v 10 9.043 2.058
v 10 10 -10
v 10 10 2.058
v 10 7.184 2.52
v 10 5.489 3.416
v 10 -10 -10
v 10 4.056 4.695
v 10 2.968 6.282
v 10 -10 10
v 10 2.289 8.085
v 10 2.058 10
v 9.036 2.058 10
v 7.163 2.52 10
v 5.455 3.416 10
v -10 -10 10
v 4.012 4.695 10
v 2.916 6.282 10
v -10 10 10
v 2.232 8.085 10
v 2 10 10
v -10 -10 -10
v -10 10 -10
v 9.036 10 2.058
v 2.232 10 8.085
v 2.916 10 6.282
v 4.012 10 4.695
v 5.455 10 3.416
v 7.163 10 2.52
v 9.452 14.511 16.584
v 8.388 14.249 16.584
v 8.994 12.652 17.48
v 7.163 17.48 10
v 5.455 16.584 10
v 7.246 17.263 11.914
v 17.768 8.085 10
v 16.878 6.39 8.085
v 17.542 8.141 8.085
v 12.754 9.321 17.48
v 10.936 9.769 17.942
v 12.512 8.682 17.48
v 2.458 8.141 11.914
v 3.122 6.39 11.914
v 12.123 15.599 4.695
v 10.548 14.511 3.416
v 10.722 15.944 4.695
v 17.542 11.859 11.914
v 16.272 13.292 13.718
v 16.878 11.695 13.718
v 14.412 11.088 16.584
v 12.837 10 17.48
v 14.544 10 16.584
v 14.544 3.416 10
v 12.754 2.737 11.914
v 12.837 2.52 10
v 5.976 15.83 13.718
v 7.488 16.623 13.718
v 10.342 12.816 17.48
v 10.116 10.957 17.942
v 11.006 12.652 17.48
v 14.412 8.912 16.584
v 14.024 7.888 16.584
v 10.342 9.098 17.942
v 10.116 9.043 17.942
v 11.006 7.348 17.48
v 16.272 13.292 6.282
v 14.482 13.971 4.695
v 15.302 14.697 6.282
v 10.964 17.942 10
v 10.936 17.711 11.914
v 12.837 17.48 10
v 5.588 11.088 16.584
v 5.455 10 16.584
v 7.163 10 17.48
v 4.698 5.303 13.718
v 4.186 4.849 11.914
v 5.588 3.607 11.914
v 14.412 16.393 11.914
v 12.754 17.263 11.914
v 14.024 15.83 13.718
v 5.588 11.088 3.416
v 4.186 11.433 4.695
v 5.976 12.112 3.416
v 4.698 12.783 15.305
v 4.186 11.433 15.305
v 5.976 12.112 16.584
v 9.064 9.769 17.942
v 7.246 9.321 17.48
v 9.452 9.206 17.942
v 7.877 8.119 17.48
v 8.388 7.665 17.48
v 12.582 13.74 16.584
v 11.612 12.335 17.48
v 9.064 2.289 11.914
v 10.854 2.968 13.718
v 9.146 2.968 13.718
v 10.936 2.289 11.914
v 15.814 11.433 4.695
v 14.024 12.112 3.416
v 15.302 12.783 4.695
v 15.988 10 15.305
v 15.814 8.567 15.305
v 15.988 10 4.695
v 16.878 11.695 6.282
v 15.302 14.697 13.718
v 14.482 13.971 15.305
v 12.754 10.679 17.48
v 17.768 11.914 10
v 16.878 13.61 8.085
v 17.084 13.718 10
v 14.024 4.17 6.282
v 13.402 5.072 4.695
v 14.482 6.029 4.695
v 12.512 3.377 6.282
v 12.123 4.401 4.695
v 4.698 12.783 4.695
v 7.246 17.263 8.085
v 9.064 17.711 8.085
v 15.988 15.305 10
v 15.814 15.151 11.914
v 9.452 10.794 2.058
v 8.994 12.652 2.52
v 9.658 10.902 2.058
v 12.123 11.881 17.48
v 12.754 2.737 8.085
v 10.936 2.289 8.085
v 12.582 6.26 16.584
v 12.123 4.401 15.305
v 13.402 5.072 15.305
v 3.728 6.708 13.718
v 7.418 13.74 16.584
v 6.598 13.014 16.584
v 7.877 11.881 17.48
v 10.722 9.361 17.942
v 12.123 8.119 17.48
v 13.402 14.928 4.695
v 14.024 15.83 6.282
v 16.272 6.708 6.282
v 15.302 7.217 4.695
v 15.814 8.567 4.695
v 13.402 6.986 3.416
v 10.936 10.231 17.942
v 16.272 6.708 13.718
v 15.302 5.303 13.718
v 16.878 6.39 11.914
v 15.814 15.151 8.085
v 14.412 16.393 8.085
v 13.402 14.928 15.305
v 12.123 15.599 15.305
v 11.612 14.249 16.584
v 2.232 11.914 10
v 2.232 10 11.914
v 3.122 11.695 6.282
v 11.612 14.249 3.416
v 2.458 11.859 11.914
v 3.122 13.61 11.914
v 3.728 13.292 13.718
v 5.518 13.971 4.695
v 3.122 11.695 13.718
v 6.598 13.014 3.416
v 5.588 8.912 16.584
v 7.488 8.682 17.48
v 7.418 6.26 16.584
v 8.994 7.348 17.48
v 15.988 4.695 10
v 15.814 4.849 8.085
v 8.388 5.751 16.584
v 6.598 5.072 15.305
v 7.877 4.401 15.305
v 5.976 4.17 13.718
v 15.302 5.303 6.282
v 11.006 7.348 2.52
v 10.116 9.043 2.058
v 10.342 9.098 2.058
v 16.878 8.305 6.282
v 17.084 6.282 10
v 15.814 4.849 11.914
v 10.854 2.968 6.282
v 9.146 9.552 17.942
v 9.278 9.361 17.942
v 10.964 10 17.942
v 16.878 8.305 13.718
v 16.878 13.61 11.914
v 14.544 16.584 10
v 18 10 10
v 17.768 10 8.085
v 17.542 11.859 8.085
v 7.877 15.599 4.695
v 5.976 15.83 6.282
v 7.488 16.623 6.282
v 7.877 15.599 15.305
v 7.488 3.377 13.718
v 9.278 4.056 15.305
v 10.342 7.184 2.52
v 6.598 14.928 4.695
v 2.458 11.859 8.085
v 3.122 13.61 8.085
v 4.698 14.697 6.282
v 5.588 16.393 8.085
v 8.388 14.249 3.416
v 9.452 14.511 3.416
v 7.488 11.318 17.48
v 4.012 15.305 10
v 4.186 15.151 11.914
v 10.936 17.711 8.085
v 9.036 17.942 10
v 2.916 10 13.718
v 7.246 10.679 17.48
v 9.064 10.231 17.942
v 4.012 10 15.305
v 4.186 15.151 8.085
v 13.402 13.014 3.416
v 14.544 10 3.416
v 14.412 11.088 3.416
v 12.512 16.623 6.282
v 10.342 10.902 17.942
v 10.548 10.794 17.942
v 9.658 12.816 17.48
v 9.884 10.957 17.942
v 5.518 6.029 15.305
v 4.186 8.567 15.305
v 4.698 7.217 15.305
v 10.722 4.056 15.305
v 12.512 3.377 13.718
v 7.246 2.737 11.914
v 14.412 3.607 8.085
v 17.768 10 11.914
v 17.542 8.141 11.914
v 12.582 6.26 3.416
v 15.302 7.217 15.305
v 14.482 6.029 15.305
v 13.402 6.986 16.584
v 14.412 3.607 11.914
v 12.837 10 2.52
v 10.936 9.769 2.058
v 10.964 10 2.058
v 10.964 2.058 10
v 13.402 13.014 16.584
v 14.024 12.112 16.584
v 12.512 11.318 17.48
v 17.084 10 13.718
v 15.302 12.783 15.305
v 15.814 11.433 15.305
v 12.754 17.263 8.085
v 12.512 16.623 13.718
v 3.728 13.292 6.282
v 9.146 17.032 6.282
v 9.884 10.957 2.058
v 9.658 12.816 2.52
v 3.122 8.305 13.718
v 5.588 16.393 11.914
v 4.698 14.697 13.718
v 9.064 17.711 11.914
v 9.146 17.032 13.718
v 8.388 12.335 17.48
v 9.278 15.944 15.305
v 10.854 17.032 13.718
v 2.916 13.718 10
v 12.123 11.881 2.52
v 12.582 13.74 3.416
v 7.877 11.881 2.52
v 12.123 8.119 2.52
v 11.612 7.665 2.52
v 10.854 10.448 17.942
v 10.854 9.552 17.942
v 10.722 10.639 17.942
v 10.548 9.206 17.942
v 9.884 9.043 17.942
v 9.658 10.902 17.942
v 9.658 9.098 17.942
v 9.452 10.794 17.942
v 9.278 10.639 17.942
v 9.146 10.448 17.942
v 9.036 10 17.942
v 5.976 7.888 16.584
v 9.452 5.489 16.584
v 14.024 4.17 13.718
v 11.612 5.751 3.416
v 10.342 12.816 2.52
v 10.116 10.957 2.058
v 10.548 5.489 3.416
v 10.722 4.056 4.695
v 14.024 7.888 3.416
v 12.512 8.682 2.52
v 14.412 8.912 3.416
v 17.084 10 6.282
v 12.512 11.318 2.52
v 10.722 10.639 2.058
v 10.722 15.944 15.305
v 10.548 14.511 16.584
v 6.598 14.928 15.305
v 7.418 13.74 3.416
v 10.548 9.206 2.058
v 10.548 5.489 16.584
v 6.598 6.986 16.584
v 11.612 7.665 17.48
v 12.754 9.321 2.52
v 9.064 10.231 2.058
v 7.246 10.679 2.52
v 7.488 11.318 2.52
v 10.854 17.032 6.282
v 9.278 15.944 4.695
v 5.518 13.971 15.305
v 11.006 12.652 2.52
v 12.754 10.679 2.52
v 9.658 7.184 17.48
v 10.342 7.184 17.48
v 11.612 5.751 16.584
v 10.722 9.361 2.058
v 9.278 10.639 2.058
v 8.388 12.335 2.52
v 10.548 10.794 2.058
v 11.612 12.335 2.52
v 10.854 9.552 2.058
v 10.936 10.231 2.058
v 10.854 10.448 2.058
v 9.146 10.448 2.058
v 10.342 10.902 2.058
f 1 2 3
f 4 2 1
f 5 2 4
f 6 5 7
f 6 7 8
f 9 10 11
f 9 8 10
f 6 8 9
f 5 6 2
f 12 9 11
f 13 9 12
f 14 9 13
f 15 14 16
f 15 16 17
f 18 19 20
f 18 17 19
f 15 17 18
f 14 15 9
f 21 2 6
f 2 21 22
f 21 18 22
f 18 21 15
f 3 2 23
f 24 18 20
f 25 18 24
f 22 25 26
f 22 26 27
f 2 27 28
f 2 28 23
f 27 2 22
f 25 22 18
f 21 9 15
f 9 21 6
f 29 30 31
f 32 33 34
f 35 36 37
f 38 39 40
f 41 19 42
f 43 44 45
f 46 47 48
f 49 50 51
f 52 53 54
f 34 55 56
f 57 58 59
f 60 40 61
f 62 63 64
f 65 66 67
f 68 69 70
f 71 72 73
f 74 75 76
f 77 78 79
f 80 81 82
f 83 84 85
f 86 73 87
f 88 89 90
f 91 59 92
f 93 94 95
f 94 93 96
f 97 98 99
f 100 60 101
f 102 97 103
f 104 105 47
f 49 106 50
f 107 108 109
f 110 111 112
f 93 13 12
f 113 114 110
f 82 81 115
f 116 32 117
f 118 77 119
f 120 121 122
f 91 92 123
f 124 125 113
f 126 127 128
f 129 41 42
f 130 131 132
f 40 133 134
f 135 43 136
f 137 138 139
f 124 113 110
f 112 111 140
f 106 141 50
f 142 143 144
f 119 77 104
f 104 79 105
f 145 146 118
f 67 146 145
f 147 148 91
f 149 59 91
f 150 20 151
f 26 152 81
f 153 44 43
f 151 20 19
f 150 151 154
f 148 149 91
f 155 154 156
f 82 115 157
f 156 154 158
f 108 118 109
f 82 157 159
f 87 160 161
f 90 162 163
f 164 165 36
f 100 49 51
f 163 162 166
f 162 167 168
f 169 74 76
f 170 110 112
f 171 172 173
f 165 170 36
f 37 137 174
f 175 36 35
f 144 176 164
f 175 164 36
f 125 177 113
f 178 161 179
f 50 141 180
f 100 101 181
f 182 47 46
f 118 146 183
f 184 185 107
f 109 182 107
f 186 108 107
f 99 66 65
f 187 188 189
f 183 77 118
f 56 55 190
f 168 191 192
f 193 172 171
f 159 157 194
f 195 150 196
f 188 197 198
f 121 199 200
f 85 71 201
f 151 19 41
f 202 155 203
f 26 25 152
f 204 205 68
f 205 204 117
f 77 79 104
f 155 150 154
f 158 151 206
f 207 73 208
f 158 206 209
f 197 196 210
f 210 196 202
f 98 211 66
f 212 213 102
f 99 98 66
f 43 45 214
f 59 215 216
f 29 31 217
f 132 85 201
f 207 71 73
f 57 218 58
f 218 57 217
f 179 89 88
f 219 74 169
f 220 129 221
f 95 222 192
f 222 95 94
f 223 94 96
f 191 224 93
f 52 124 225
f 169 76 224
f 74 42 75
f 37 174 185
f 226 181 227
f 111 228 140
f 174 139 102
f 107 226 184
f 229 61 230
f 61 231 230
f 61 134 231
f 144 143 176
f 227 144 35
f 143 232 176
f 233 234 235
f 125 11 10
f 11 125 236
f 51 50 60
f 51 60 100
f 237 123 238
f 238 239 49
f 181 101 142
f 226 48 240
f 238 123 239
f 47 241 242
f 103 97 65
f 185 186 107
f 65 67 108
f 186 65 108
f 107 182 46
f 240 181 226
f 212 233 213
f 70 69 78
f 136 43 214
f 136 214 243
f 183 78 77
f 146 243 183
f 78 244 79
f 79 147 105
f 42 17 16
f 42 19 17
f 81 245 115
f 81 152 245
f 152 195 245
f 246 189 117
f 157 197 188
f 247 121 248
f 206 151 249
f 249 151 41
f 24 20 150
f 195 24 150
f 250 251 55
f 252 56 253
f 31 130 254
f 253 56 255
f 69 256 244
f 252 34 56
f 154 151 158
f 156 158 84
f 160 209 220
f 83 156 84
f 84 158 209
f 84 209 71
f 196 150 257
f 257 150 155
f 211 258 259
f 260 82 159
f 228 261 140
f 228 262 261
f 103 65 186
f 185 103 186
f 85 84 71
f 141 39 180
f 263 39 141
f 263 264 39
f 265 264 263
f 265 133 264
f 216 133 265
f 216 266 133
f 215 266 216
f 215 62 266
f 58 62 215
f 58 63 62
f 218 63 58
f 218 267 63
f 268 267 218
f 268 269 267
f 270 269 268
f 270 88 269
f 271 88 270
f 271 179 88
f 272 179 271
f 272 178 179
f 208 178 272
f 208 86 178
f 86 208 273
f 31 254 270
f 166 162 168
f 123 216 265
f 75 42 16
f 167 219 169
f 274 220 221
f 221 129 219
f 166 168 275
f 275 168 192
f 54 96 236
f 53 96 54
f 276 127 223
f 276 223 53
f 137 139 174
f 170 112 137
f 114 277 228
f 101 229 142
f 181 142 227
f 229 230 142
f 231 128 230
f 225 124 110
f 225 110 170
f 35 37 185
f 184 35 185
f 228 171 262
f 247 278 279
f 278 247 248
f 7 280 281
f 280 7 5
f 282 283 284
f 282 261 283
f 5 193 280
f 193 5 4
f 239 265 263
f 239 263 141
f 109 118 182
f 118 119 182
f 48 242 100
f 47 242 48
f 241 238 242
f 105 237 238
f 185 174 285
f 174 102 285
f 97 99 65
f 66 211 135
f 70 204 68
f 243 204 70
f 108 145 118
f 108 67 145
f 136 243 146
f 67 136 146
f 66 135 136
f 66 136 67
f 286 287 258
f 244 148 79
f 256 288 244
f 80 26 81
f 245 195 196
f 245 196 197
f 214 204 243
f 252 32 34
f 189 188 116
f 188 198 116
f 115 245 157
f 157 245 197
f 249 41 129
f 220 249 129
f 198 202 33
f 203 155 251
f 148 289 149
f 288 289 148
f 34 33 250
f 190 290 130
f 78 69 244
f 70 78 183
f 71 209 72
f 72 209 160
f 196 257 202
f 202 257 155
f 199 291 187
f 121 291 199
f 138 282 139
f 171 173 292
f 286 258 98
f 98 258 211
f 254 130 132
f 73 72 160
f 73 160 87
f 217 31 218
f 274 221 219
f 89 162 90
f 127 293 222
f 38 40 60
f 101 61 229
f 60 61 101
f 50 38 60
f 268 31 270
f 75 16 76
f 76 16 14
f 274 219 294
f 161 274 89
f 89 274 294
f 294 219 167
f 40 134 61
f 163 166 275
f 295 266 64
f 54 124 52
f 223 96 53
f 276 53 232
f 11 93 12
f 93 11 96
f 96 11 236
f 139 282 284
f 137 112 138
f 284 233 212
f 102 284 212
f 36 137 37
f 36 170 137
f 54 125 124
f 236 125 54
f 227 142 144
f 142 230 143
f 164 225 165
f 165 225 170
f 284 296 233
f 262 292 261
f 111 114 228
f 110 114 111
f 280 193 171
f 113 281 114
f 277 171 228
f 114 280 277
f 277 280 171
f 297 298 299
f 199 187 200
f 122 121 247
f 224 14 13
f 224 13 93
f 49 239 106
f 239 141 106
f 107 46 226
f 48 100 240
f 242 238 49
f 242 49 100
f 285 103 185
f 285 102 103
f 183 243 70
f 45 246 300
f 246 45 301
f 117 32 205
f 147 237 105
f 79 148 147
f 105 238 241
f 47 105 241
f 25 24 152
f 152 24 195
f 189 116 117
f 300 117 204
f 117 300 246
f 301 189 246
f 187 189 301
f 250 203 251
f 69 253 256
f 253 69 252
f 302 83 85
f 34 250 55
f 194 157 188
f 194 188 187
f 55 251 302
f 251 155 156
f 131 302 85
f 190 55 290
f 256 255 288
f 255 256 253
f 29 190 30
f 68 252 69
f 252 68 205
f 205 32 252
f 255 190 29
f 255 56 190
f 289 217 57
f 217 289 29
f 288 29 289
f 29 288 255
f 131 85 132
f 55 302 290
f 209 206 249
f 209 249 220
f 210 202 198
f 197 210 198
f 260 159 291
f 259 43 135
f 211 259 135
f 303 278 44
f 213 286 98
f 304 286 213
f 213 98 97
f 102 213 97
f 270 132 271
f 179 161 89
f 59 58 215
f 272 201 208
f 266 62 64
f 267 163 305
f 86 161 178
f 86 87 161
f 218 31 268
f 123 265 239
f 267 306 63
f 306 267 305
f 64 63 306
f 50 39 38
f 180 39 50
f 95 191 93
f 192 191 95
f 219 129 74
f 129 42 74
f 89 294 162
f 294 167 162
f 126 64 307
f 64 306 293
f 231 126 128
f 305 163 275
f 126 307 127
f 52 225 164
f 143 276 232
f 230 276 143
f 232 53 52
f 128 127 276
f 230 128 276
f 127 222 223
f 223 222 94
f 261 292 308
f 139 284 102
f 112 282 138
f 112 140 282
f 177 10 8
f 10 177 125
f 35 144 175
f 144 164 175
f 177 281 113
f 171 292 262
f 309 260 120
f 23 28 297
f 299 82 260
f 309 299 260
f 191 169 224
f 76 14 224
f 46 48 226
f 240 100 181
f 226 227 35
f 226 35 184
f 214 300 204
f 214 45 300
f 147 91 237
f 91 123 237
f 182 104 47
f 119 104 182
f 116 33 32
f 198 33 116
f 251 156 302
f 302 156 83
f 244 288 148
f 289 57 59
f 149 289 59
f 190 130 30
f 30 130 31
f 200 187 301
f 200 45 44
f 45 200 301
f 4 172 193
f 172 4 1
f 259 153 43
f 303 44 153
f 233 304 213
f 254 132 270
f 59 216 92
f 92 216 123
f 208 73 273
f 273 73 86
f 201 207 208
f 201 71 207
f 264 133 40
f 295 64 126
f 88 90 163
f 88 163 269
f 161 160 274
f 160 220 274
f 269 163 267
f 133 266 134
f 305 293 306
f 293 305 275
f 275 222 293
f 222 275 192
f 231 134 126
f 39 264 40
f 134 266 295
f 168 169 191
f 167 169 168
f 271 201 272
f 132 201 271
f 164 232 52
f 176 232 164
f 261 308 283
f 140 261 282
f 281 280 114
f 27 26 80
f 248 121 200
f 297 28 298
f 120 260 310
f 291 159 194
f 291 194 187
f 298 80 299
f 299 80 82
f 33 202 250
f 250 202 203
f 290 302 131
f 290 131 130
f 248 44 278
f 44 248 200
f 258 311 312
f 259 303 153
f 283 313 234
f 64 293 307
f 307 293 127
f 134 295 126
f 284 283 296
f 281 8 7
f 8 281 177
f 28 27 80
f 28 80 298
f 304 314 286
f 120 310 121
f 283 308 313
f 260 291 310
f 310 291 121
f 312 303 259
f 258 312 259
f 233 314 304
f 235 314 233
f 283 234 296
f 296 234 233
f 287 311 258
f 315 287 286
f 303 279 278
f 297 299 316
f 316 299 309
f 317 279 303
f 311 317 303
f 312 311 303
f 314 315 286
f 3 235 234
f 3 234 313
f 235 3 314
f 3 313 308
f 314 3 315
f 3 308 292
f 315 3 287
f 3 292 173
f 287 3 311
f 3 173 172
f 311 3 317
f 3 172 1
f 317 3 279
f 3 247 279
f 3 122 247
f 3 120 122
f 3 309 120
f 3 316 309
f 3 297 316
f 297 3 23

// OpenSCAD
// Simple smoke test: cube and sphere union
union() {
  cube([20,20,20], center=true);
  translate([10,10,10]) sphere(r=8);
}
